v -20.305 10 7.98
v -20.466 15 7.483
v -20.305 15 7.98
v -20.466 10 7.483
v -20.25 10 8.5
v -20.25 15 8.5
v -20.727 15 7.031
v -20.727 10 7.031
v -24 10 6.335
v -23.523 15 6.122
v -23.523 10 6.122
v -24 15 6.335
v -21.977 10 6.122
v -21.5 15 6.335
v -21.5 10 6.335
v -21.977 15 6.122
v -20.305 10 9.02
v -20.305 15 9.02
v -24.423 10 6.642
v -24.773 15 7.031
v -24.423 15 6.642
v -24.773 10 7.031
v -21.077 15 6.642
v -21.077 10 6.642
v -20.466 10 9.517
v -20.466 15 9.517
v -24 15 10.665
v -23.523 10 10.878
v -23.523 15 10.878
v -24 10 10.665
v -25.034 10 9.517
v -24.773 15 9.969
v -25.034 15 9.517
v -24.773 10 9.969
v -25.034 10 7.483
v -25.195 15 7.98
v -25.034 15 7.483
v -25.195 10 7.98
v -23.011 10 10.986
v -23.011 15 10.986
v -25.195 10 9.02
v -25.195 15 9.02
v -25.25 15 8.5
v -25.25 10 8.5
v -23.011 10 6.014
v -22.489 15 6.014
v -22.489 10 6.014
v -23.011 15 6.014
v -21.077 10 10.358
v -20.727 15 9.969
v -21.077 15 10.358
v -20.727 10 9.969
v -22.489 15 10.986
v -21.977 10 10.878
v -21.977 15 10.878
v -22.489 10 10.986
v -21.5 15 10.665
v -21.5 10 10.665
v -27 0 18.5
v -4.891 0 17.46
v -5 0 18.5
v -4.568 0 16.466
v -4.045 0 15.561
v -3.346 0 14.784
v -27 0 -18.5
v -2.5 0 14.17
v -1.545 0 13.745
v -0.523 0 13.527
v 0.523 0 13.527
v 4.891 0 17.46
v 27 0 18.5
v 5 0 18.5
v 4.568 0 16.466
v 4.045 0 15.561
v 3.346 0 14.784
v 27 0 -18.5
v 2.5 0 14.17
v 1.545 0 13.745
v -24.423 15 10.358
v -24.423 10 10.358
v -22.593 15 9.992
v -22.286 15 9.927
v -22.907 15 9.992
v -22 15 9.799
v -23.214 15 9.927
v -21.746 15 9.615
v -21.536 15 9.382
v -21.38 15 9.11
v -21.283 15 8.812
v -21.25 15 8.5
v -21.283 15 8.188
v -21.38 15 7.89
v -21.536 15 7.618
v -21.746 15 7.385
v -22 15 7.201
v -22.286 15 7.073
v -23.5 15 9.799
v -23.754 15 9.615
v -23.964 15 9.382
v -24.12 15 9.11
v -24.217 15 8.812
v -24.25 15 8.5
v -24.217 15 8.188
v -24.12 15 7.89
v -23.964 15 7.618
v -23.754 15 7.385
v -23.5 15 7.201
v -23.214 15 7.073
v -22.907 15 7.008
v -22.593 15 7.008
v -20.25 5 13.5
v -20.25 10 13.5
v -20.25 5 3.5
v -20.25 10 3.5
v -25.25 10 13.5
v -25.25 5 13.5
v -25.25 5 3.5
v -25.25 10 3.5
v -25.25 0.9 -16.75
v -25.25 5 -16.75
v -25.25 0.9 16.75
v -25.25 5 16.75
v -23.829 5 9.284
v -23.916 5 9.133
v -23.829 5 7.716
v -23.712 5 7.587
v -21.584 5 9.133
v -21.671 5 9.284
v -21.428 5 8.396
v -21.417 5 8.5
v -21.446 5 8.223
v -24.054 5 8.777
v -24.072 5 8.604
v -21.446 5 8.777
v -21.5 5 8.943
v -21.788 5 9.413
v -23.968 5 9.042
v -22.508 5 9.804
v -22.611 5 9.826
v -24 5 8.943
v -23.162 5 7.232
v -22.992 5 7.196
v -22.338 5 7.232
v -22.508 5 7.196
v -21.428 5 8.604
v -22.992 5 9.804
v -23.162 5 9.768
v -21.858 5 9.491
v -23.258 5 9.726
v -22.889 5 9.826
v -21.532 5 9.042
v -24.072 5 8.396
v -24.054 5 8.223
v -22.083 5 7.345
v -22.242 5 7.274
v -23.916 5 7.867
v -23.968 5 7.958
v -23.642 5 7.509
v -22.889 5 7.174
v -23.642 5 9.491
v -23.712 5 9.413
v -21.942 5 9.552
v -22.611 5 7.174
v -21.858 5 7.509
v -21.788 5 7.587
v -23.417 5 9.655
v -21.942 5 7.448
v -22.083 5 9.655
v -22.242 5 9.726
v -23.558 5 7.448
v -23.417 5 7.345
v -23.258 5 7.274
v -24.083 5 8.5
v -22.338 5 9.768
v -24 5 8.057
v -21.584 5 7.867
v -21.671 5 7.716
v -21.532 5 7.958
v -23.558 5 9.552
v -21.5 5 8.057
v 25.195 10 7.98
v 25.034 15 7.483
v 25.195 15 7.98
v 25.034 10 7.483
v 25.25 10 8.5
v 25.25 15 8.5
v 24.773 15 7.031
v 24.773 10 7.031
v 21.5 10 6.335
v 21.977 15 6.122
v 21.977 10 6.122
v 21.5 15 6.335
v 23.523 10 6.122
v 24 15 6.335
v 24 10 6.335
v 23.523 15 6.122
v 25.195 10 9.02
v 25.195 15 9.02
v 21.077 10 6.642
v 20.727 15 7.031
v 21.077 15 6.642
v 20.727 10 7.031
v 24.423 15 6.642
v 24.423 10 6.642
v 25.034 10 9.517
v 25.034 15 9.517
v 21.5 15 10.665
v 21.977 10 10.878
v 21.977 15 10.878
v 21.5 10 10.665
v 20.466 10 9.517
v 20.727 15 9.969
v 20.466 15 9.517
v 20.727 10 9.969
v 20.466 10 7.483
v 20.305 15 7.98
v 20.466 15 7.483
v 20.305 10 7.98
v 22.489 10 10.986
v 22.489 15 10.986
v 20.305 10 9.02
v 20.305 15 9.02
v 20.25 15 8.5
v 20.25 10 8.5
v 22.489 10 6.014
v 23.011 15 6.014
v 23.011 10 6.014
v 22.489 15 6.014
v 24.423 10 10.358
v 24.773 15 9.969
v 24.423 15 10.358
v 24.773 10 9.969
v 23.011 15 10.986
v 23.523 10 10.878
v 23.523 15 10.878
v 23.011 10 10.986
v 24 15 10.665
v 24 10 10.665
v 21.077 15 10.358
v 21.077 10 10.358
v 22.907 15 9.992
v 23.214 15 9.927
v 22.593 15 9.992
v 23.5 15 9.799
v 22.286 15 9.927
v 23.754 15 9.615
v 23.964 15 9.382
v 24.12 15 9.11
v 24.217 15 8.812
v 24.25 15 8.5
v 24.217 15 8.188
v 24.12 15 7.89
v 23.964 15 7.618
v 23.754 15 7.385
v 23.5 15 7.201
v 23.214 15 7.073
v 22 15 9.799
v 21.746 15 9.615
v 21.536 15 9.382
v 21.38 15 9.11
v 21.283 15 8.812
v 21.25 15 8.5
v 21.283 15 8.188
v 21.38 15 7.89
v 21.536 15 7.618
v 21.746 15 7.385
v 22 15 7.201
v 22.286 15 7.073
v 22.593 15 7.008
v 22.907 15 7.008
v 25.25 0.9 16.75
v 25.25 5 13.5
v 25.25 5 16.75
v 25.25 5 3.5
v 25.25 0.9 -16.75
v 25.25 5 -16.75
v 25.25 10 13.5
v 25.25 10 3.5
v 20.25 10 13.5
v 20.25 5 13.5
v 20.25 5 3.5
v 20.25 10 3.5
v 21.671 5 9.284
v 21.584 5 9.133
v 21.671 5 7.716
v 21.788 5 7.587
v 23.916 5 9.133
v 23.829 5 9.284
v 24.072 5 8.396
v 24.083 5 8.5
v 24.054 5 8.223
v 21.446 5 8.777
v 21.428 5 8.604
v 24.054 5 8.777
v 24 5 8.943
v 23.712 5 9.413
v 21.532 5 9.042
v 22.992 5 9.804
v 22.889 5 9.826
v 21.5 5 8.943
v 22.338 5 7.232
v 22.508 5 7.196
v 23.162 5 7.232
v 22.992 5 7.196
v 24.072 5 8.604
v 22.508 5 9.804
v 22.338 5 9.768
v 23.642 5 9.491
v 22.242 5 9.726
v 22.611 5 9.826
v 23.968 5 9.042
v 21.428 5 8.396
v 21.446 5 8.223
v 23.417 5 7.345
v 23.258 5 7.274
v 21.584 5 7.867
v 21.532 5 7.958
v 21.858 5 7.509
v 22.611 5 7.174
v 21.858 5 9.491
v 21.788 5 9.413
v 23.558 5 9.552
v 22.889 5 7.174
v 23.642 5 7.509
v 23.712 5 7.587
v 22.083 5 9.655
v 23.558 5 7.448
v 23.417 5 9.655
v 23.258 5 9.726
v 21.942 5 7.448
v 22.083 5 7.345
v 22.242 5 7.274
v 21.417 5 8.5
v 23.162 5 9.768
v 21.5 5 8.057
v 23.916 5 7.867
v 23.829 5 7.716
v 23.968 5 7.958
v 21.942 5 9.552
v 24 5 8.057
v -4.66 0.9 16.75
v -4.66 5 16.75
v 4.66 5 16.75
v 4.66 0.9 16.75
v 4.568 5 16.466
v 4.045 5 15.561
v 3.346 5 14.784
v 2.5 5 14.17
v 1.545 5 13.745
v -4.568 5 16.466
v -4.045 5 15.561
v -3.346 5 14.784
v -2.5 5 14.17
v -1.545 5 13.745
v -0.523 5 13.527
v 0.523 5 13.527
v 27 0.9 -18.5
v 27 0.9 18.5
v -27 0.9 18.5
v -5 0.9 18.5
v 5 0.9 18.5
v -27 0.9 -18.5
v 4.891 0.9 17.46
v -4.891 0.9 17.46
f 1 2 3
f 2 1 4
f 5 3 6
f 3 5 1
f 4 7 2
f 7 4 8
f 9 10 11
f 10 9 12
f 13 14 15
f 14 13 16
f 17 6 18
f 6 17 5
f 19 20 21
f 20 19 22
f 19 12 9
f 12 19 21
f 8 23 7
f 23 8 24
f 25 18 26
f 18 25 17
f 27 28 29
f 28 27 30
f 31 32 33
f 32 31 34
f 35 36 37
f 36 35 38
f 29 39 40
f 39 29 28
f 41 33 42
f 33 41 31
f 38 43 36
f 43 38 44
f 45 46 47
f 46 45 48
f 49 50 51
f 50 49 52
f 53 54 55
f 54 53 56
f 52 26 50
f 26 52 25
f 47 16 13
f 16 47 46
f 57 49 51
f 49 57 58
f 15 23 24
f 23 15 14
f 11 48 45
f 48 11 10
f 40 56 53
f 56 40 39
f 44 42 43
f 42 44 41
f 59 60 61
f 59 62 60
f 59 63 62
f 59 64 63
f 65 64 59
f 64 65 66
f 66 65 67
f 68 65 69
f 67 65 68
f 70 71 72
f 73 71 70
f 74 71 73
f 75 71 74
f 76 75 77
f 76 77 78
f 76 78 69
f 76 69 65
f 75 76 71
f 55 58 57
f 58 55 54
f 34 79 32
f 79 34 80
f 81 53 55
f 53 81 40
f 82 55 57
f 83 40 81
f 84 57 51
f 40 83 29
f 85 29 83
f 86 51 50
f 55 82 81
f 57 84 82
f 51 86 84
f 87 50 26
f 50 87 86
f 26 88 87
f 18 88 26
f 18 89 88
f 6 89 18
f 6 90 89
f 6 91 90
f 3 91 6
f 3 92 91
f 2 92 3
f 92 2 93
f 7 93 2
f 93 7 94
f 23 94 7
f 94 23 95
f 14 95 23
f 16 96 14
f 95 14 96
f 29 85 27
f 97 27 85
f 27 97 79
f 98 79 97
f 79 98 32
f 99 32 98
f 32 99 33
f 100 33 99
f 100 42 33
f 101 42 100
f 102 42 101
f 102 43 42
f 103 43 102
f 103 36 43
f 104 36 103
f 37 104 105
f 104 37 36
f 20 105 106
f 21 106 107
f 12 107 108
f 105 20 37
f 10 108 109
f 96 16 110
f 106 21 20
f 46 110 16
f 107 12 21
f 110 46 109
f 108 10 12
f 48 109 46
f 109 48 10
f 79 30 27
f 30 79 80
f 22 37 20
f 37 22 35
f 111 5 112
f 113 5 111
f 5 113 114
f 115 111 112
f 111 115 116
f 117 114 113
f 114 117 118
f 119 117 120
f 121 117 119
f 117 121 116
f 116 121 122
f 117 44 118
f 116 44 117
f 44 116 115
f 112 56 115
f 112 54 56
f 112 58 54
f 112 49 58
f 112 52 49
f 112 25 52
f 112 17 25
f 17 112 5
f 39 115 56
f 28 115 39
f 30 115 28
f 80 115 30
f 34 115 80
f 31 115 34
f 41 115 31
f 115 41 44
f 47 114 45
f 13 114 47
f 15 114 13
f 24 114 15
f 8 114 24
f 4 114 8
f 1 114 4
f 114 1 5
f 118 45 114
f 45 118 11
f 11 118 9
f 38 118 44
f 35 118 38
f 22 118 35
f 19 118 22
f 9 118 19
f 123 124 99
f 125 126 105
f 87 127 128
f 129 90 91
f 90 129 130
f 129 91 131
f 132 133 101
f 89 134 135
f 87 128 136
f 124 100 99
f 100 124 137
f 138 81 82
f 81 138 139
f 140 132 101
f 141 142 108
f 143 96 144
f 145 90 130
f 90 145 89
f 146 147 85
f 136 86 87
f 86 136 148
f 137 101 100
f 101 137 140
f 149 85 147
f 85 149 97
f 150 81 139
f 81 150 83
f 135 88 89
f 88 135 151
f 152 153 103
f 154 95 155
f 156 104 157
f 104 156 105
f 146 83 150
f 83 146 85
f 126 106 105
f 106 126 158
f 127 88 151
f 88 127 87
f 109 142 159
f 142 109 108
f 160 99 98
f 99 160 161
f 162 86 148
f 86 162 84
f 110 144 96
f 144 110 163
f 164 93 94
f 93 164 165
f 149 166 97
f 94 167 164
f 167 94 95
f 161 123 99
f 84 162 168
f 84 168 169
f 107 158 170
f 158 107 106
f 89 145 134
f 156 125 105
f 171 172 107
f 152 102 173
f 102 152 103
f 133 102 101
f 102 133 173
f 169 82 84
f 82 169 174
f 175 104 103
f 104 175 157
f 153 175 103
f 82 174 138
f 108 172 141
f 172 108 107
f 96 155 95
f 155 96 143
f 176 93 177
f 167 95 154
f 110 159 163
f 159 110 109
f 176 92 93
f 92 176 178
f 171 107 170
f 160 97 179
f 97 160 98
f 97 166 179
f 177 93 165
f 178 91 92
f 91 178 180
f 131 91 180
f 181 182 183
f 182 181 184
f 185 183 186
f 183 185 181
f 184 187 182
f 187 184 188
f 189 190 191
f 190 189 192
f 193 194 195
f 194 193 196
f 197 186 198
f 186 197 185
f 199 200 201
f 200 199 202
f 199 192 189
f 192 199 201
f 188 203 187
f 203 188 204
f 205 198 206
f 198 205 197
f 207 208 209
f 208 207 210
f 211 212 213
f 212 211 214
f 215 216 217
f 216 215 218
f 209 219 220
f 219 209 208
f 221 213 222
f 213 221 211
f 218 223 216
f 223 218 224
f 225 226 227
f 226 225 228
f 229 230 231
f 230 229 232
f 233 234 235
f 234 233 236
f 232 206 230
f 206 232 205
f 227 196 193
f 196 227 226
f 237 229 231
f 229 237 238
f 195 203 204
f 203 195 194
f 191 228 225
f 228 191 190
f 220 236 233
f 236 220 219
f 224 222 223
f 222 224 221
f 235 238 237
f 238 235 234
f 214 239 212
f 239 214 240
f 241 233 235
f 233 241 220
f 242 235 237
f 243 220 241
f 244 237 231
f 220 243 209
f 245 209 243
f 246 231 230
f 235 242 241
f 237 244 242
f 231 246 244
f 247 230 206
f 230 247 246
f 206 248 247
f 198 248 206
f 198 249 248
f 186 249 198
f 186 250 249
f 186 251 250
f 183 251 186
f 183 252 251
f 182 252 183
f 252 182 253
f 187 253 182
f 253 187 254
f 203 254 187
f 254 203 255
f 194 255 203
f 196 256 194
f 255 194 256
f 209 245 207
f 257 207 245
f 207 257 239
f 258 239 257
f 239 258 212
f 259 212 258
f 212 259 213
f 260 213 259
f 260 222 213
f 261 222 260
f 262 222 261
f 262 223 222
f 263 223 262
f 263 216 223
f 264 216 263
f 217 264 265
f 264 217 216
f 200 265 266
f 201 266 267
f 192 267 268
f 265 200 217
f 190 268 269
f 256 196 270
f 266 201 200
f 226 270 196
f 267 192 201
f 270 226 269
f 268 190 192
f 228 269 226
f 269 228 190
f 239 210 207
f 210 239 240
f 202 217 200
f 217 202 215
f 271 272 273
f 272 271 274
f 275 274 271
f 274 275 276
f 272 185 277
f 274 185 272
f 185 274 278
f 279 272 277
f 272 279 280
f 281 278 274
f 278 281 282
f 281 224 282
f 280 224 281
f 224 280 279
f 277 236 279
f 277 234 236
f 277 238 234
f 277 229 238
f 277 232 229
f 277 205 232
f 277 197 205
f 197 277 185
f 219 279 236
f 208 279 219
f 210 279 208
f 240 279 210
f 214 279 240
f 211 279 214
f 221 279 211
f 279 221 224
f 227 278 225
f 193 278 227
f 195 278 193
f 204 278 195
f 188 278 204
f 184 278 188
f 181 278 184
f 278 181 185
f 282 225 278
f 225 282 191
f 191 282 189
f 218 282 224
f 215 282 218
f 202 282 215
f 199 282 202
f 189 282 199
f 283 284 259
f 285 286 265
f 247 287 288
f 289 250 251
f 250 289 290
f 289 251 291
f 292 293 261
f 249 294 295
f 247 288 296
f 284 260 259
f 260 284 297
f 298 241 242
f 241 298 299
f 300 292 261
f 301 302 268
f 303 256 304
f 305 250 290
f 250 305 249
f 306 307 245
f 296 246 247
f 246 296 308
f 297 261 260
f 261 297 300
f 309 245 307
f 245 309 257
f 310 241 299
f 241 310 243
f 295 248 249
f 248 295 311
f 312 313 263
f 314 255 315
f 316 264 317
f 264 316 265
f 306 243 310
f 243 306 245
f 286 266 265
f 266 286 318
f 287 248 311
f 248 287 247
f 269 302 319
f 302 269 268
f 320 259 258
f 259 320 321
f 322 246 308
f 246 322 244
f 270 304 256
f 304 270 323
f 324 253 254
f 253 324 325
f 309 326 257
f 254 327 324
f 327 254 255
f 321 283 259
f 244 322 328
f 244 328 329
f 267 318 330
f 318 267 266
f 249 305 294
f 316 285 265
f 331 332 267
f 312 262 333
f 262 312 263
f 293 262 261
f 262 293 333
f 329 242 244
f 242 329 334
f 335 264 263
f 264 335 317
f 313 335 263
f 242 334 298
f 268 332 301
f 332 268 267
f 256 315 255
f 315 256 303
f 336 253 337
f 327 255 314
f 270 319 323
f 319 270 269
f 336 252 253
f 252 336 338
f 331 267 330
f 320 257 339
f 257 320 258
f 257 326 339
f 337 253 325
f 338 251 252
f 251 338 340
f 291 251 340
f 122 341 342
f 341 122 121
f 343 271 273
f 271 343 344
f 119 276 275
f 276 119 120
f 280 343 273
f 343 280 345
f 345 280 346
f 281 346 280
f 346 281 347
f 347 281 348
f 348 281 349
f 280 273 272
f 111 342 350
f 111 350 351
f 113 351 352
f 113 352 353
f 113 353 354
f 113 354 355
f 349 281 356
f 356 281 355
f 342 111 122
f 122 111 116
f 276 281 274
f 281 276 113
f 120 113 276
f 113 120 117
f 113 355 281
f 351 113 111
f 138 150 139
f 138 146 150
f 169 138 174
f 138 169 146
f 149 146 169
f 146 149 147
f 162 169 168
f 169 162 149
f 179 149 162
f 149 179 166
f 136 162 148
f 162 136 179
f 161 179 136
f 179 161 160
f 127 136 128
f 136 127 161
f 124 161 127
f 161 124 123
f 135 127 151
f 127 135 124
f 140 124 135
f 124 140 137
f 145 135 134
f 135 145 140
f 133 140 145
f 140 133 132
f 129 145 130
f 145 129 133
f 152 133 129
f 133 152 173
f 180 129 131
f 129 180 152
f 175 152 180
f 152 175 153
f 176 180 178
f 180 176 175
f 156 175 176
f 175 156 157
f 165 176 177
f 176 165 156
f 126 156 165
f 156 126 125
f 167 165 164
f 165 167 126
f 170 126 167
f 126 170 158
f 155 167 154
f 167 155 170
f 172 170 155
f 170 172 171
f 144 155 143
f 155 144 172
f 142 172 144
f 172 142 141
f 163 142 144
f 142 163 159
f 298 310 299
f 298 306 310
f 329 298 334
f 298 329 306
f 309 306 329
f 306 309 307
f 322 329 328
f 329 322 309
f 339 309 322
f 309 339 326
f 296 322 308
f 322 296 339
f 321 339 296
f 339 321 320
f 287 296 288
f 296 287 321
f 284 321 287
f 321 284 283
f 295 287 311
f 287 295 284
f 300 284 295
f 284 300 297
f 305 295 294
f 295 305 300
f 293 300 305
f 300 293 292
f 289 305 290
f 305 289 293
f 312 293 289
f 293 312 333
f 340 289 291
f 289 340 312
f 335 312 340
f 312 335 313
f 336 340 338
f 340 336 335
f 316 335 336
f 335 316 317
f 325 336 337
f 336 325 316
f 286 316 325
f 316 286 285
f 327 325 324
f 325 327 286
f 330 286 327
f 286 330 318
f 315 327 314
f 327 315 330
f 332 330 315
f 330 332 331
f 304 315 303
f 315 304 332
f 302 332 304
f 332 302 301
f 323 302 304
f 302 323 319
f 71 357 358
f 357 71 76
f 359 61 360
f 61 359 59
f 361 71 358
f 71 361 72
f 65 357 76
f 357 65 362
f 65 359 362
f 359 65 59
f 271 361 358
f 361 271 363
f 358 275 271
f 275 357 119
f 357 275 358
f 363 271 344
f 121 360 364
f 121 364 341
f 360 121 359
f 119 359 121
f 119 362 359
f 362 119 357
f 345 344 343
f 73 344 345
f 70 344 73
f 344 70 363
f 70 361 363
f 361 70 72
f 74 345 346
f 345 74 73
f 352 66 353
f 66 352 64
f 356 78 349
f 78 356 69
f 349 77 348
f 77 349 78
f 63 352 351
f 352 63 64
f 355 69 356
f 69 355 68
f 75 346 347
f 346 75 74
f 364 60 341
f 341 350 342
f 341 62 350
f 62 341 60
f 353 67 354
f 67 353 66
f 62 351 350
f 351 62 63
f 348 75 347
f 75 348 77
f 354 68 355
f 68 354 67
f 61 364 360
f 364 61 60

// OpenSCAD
sz = 25.4*[4.25,.9,3];
rad=2;
$fn=30;

module post(p) {
    translate(p) {
        difference() {
            union() {
                rotate([-90,0,0])
                    cylinder(15,2.5,2.5);
                translate([0,5,0])
                    cube([5,10,10],center=true);
            }
            rotate([-90,0,0])
                cylinder(15,1.25,1.5);
        }
    }
}

difference() {
    union() {
        translate([-25.25,0,-16.75])
        cube([50.5,5,33.5]);
        translate([-27,0,-18.5])
        cube([54,.9,37]);
        post([-22.75,0,8.5]);
        post([22.75,0,8.5]);
    }
    translate([0,-1,18.5])
    rotate([-90,0,0])
    cylinder(10,5,5);
}
